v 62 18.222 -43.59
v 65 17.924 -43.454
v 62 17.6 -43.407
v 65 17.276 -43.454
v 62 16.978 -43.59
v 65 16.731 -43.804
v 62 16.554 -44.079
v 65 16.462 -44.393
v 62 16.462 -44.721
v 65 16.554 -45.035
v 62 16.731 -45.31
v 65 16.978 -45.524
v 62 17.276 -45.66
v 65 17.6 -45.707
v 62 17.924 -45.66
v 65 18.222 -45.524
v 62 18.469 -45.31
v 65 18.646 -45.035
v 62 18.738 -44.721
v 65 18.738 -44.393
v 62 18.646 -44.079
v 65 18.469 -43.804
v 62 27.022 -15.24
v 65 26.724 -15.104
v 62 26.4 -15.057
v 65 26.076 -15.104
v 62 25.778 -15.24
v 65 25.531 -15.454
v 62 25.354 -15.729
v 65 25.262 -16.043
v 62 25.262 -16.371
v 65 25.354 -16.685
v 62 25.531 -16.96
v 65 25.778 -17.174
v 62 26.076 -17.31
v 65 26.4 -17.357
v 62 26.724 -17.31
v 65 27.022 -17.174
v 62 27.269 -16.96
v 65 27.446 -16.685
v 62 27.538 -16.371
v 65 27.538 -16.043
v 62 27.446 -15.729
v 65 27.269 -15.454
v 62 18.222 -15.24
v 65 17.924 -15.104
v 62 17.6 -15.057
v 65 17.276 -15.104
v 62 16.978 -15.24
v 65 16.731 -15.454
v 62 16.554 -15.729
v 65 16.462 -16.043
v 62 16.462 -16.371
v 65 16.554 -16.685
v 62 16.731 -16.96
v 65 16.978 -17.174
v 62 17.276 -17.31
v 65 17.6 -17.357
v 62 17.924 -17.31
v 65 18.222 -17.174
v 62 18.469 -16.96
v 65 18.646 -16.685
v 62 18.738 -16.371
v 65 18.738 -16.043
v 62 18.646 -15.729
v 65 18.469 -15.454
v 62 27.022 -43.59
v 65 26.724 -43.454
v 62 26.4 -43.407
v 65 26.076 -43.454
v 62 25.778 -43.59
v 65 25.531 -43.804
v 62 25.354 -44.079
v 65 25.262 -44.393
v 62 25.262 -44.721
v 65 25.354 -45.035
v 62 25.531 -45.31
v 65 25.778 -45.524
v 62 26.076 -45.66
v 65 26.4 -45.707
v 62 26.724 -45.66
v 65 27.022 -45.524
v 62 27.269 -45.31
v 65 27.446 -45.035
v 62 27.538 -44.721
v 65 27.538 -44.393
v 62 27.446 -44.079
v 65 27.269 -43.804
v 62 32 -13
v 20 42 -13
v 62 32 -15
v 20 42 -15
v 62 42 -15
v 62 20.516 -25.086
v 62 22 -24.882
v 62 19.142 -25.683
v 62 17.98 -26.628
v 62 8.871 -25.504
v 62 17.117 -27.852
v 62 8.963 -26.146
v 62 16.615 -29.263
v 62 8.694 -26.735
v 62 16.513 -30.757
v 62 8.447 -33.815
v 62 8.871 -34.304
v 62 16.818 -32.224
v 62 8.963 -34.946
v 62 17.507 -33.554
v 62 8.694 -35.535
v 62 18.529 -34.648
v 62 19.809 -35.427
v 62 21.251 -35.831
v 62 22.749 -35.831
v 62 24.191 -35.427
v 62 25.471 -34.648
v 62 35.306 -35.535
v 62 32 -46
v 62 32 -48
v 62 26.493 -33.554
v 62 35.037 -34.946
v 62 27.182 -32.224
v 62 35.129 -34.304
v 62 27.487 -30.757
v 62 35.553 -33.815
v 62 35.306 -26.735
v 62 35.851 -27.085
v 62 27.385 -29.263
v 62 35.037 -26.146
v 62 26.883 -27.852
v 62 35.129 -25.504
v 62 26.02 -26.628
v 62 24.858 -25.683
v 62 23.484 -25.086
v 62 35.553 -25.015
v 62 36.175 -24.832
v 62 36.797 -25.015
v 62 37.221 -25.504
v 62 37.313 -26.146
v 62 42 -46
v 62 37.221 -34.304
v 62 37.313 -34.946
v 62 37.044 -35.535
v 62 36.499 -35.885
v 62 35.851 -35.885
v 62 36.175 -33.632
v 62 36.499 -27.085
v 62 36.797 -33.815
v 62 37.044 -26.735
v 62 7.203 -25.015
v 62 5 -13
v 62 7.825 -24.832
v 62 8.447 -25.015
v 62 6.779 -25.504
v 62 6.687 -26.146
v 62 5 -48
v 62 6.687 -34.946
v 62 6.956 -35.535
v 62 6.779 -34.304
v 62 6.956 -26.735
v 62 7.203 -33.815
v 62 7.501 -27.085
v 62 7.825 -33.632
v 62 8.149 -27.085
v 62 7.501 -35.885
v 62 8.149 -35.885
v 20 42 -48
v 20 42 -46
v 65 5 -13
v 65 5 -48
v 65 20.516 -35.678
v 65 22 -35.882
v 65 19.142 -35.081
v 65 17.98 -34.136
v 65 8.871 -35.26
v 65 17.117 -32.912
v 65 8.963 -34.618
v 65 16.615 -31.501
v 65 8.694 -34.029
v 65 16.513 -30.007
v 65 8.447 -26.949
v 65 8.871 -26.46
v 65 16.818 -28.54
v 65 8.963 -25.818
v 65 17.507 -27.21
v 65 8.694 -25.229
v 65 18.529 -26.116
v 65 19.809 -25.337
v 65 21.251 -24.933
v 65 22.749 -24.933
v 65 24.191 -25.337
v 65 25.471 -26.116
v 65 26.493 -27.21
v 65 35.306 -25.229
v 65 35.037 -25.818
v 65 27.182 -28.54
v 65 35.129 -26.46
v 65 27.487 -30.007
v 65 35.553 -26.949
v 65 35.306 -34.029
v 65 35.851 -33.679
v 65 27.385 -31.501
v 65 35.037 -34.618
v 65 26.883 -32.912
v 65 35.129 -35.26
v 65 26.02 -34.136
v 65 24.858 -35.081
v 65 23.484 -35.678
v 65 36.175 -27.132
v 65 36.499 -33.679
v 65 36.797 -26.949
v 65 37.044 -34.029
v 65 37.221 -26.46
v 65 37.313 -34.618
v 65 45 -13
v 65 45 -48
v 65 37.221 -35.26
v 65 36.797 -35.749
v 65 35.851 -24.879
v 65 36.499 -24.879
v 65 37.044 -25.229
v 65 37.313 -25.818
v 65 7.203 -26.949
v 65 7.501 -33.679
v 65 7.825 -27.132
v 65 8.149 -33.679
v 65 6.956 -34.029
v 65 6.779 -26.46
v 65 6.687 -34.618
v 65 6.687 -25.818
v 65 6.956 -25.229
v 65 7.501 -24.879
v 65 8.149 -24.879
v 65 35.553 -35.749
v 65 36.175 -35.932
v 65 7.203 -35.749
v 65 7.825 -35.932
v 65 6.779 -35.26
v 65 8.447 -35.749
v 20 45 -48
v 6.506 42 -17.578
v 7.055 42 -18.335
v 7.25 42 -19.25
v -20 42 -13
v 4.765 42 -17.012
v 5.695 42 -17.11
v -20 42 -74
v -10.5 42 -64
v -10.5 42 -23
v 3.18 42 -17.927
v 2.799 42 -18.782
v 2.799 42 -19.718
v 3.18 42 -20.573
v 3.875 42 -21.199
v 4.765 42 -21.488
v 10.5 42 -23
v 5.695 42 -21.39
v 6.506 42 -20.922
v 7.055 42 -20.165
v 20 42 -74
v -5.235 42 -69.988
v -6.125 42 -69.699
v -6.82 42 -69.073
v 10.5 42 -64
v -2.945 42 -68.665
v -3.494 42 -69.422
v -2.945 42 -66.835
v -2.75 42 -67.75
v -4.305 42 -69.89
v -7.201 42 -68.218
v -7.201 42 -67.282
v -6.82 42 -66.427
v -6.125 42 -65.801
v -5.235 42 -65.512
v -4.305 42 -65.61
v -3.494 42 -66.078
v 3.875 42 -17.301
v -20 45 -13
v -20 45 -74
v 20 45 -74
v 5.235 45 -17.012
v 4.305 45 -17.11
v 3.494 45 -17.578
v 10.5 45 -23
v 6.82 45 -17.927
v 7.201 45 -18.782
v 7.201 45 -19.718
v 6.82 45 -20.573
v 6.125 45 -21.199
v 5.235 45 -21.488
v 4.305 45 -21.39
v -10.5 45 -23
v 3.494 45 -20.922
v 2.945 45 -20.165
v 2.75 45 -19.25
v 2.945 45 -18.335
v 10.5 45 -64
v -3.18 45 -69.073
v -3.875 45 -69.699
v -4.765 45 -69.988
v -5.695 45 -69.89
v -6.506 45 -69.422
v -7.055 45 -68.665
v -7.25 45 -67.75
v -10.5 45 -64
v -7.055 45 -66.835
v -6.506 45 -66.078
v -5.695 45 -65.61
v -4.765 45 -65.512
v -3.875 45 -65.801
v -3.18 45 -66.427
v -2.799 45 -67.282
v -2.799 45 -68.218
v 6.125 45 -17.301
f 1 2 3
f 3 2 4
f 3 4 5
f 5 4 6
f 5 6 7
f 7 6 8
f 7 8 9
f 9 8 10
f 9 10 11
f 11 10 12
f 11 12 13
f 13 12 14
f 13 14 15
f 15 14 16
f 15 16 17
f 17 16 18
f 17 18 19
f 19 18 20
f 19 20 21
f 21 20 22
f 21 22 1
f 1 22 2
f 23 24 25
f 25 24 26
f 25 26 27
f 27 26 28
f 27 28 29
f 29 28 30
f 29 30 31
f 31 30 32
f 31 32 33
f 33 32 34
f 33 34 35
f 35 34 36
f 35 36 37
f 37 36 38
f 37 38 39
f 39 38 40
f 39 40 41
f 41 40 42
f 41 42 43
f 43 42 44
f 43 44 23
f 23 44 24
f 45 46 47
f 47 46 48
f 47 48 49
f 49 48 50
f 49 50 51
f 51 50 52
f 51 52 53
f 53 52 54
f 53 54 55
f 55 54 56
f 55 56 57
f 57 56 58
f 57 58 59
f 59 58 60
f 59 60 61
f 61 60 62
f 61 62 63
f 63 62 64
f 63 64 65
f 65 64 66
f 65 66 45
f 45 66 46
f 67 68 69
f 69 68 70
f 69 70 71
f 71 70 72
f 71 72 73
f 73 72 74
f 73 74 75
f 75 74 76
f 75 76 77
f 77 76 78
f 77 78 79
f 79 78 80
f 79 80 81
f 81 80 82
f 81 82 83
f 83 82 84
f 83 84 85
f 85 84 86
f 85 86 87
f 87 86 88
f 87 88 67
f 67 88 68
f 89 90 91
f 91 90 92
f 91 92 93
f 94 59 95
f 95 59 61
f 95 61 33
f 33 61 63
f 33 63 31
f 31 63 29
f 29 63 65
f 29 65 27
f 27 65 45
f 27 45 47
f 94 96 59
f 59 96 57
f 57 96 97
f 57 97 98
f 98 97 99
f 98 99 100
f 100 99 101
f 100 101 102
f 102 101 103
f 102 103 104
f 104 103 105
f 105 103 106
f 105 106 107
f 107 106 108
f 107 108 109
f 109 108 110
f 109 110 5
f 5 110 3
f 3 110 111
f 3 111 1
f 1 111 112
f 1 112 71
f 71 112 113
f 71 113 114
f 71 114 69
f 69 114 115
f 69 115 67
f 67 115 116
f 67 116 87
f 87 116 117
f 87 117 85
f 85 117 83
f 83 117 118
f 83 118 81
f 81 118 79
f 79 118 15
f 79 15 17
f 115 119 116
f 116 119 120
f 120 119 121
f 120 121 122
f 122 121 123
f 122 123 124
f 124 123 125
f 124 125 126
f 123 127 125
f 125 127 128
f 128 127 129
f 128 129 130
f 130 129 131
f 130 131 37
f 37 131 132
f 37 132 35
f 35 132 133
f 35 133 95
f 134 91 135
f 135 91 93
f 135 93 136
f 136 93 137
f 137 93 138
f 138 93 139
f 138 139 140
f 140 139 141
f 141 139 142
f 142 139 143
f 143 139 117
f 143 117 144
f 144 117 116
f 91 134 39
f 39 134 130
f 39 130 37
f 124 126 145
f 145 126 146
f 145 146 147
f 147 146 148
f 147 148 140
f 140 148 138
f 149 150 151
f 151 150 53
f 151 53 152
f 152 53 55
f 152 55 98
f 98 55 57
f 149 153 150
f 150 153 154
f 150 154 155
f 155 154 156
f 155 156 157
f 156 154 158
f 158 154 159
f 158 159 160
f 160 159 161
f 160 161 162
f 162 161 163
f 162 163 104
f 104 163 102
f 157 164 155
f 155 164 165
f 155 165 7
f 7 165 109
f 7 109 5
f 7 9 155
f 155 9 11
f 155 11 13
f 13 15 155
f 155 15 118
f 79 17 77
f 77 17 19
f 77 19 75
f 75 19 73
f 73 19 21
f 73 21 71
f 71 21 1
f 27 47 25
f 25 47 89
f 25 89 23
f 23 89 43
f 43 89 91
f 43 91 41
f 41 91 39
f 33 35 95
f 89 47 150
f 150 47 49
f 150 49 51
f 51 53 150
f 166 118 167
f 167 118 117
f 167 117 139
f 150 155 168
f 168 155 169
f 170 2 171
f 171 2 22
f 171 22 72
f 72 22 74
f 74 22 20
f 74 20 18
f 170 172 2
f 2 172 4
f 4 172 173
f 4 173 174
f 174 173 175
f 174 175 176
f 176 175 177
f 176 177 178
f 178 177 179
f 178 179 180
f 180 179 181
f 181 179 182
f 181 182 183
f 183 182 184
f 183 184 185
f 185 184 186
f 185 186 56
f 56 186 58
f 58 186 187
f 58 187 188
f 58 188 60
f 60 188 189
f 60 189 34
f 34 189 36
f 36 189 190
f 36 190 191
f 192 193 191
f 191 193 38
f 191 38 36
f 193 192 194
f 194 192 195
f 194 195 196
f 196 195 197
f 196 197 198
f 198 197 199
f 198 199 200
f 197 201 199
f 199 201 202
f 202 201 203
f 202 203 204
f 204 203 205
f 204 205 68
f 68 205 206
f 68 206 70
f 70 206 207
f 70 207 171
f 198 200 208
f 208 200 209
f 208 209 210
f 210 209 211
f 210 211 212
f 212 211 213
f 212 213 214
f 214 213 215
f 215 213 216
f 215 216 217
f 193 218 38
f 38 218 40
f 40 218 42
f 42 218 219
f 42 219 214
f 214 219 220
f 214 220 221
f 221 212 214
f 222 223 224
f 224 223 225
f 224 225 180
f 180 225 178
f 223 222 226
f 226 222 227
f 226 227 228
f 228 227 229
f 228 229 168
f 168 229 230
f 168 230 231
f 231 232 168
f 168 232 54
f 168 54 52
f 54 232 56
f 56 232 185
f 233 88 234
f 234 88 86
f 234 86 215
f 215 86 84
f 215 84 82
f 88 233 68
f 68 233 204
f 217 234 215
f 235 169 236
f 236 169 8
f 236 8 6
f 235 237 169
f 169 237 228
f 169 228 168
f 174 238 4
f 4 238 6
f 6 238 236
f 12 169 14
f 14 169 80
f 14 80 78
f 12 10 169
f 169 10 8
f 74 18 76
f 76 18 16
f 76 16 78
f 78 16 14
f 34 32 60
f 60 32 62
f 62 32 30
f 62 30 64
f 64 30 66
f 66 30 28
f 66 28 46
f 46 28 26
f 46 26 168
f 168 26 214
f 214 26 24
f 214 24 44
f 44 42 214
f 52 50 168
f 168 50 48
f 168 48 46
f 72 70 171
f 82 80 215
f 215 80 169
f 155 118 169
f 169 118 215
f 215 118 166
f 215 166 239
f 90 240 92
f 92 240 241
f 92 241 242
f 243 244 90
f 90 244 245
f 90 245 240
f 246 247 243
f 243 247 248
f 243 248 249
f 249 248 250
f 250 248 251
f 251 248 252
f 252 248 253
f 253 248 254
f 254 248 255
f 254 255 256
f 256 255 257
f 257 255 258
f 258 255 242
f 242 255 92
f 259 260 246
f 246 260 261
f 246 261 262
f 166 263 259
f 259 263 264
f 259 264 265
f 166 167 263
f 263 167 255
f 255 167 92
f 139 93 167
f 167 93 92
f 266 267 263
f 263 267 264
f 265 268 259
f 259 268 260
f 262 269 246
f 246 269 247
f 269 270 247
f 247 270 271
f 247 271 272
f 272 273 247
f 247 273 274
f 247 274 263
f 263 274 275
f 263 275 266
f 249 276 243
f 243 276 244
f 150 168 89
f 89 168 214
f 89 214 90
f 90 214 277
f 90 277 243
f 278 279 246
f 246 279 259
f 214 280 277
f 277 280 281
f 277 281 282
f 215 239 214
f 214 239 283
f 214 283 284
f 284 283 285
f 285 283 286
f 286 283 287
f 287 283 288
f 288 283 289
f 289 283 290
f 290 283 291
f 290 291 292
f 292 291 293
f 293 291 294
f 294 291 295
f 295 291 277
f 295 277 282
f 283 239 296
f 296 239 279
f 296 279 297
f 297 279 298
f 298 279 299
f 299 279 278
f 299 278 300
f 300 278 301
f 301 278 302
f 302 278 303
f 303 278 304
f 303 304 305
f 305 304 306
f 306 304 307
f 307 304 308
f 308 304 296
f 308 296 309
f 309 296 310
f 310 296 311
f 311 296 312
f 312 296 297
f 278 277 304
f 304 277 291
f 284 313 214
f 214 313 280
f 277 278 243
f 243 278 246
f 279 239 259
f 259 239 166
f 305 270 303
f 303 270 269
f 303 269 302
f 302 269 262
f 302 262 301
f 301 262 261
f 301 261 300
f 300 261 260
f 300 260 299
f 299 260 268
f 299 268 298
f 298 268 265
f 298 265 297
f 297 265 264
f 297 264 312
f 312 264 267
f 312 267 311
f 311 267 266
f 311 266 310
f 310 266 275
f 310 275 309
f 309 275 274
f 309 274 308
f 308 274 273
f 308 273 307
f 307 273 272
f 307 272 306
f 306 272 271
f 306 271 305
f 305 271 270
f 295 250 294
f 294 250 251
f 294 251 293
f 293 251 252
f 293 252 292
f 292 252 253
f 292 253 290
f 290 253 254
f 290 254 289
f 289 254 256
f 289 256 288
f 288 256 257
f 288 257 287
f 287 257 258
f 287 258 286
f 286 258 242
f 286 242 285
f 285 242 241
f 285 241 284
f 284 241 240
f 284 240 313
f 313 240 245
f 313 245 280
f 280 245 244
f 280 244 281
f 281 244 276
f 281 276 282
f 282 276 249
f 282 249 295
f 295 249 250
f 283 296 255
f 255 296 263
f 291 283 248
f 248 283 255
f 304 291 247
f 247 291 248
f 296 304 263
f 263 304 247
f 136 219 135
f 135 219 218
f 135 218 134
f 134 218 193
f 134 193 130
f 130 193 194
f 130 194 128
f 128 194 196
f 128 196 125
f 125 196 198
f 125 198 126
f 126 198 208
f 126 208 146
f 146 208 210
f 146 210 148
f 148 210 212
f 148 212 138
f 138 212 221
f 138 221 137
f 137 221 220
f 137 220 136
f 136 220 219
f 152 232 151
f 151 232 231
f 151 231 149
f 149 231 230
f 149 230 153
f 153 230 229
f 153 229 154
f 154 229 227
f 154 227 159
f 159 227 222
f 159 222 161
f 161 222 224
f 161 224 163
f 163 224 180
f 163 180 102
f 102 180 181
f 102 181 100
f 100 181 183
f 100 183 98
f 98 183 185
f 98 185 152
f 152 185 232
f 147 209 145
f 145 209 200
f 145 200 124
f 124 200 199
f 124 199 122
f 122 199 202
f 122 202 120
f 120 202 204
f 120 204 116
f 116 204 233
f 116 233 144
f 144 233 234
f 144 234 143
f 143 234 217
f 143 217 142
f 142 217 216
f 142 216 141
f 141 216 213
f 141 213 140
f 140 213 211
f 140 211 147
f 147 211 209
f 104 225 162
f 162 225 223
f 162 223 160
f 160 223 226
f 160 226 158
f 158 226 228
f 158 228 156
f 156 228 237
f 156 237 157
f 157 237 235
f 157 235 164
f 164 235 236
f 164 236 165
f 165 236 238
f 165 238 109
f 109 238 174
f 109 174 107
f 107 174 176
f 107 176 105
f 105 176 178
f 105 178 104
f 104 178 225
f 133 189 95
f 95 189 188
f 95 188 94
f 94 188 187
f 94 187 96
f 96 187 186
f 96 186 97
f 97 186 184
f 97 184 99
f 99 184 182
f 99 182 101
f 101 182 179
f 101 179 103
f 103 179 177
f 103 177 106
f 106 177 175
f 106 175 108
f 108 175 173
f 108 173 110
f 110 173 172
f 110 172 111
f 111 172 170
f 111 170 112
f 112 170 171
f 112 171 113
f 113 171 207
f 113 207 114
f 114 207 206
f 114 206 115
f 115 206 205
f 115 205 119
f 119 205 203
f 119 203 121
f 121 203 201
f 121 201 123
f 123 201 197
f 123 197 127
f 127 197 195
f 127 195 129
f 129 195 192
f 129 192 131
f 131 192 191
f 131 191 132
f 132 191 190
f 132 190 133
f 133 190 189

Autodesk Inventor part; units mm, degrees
ref_plane "YZ Plane" through (0, 0, 0) normal (1, 0, 0) x (0, 1, 0)
ref_plane "XZ Plane" through (0, 0, 0) normal (0, 1, 0) x (-1, 0, 0)
sketch "Sketch1" plane through (0, 0, 0) normal (0, 0, 1) x (1, 0, 0)
  line L0 (-31, -31) -> (31, -31)
  line L1 (31, -31) -> (31, 31)
  line L2 (31, 31) -> (-31, 31)
  line L3 (-31, 31) -> (-31, -31)
  line L4 (-31, -31) -> (31, 31) construction
  line L5 (31, -31) -> (-31, 31) construction
  line L6 (-33, 33) -> (33, 33)
  line L7 (33, 33) -> (33, -33)
  line L8 (33, -33) -> (-33, -33)
  line L9 (-33, -33) -> (-33, 33)
  point P0 (0, 0)
  dimension "d0" = 62
  dimension "d1" = 62
  dimension "d2" = 2
extrude "Extrusion1" add sketch "Sketch1" along normal blind 2 contours L3 L2 L1 L0 | L6 L7 L8 L9
extrude "Extrusion2" add sketch "Sketch1" against normal blind 12
sketch "Sketch2" plane through (-33, 33, 2) normal (0, 1, 0) x (1, 0, 0)
  line L0 (13, 3) -> (53, 3)
  line L1 (53, 3) -> (53, 0)
  line L2 (53, 0) -> (13, 0)
  line L3 (13, 0) -> (13, 3)
  line L4 (0, 14) -> (0, 0) projected
  line L5 (0, 14) -> (66, 14) projected
  point P0 (33, 2)
  dimension "d7" = 40
  dimension "d8" = 3
  dimension "d9" = 13
  dimension "d10" = 11
extrude "Extrusion3" add sketch "Sketch2" along normal blind 12
sketch "Sketch3" plane through (20, 33, -1) normal (0, 0, -1) x (-1, 0, 0)
  line L0 (40, 12) -> (0, 12) projected
  line L1 (40, 0) -> (40, 12) projected
  line L2 (0, 12) -> (40, 12)
  line L3 (40, 12) -> (40, 9)
  line L4 (40, 9) -> (0, 9)
  line L5 (0, 9) -> (0, 12)
  point P0 (20, -33)
  dimension "d13" = 3
extrude "Extrusion4" add sketch "Sketch3" along normal blind 80
sketch "Sketch4" plane through (-20, 42, -1) normal (0, -1, 0) x (1, 0, 0)
  line L0 (30.5, -63) -> (9.5, -63)
  line L1 (9.5, -63) -> (9.5, -22)
  line L2 (9.5, -22) -> (30.5, -22)
  line L3 (30.5, -22) -> (30.5, -63)
  line L4 (40, 3) -> (40, -80) projected
  line L5 (0, 3) -> (40, 3) projected
  point P0 (20, 1)
  dimension "d16" = 21
  dimension "d17" = 41
  dimension "d18" = 9.5
  dimension "d19" = 25
extrude "Extrusion5" cut sketch "Sketch4" against normal blind 80
sketch "Sketch5" plane through (-20, 42, -1) normal (0, -1, 0) x (1, 0, 0)
  line L0 (30.5, -63) -> (9.5, -63) projected
  line L1 (30.5, -63) -> (9.5, -63)
  line L2 (9.5, -63) -> (9.5, -70)
  line L3 (9.5, -70) -> (30.5, -70)
  line L4 (30.5, -70) -> (30.5, -63)
  circle A0 centre (15, -66.75) radius 2.25
  line L5 (30.5, -22) -> (30.5, -63) projected
  line L6 (30.5, -22) -> (9.5, -22)
  line L7 (9.5, -22) -> (9.5, -15)
  line L8 (9.5, -15) -> (30.5, -15)
  line L9 (30.5, -15) -> (30.5, -22)
  circle A1 centre (25, -18.25) radius 2.25
  point P0 (20, 1)
  point P1 (15.4717, -69.81)
  point P2 (14.5283, -69.81)
  point P3 (24.5283, -15.19)
  point P4 (25.4717, -15.19)
  dimension "d22" = 7
  dimension "d23" = 4.5
  dimension "d24" = 3.75
  dimension "d25" = 5.5
  dimension "d26" = 7
  dimension "d27" = 4.5
  dimension "d28" = 5.5
  dimension "d29" = 3.75
extrude "Extrusion6" cut sketch "Sketch5" against normal blind 80 contours A0 | A1
sketch "Sketch6" plane through (-33, -33, 2) normal (0, -1, 0) x (1, 0, 0)
  line L0 (0, 0) -> (66, 0) projected
  line L1 (66, -14) -> (0, -14) projected
  line L2 (0, 0) -> (66, 0)
  line L3 (66, 0) -> (66, -14)
  line L4 (66, -14) -> (0, -14)
  line L5 (0, -14) -> (0, 0)
  point P0 (33, -2)
extrude "Extrusion7" cut sketch "Sketch6" against normal up to surface (75 mm away)
sketch "Sketch7" plane through (-20, 42, -81) normal (0, -1, 0) x (1, 0, 0)
  line L0 (40, 83) -> (40, 0) projected
  line L1 (40, 0) -> (85, 0)
  line L2 (85, 0) -> (85, 83)
  line L3 (85, 83) -> (40, 83)
  line L4 (40, 83) -> (40, 0)
  line L5 (85, 33) -> (40, 33)
  point P0 (20, 81)
  point P1 (40, 33)
  dimension "d34" = 45
  dimension "d35" = 83
  dimension "d36" = 50
extrude "Extrusion8" add sketch "Sketch7" against normal up to surface (3 mm away) contours L3 L2 L5 L0
sketch "Sketch8" plane through (-20, 42, -81) normal (0, -1, 0) x (1, 0, 0)
  line L0 (0, 83) -> (85, 83)
  line L1 (85, 83) -> (85, 0)
  line L2 (85, 0) -> (0, 0)
  line L3 (0, 0) -> (0, 83)
  line L4 (85, 7) -> (0, 7)
  line L5 (85, 33) -> (85, 83) projected
  line L6 (-12.2623, 85.093) -> (0, 83)
  line L7 (0, 83) -> (-11.5686, 87.0435)
  line L8 (-11.5686, 87.0435) -> (85, 70.5603)
  line L9 (0, 83) -> (100, 83)
  line L10 (100, 83) -> (100, 68)
  line L11 (100, 68) -> (0, 68)
  line L12 (0, 68) -> (0, 83)
  point P0 (20, 81)
  point P1 (0, 73.8499)
  point P2 (27.25, 61.75)
  point P3 (27.25, 61.75)
  point P4 (25.55, 64.81)
  point P5 (0, 68)
  point P6 (85, 68)
  dimension "d40" = 83
  dimension "d41" = 7
  dimension "d43" = 15
extrude "Extrusion9" cut sketch "Sketch8" against normal blind 10 contours L0 L8 L1 L11 L3 | L0 L1 L8 | L4 L1 L2 L3
sketch "Sketch9" plane through (20, 42, -48) normal (0, -1, 0) x (1, 0, 0)
  line L0 (45, 0) -> (45, 35) projected
  line L1 (0, 0) -> (45, 0) projected
  line L2 (45, 35) -> (42, 35)
  line L3 (42, 35) -> (42, 0)
  line L4 (42, 0) -> (45, 0)
  line L5 (45, 0) -> (45, 35)
  point P0 (-20, 48)
  dimension "d46" = 3
extrude "Extrusion10" add sketch "Sketch9" along normal blind 100
sketch "Sketch10" plane through (65, 45, -13) normal (1, 0, 0) x (0, 0, -1)
  circle A0 centre (18, -56.25) radius 2.125
  circle A1 centre (18, -93) radius 2.125
  circle A2 centre (18, -74.625) radius 6.45
  line L0 (20.093, -55.8824) -> (22.589, -70.0925)
  line L1 (15.9065, -55.8857) -> (13.439, -70.0643)
  line L2 (20.0935, -93.3643) -> (22.561, -79.1857)
  line L3 (15.8877, -93.2317) -> (13.411, -79.1575)
  line L4 (18, -56.25) -> (18, -74.625)
  line L5 (18, -74.625) -> (18, -93)
  line L6 (35, 0) -> (35, -103) projected
  line L7 (35, -103) -> (0, -103) projected
  point P0 (-13, -45)
  dimension "d49" = 4.25
  dimension "d50" = 4.25
  dimension "d51" = 12.9
  dimension "d52" = 9.15
  dimension "d53" = 9.15
  dimension "d54" = 41
  dimension "d57" = 17
  dimension "d58" = 10
extrude "Extrusion11" cut sketch "Sketch10" against normal blind 2.5
sketch "Sketch11" plane through (65, 45, -13) normal (1, 0, 0) x (0, 0, -1)
  line L0 (35, -3) -> (35, -103) projected
  line L1 (0, 0) -> (0, -103) projected
  line L2 (35, -103) -> (0, -103)
  line L3 (0, -103) -> (0, 0)
  line L4 (0, 0) -> (35, 0)
  line L5 (35, 0) -> (35, -103)
  line L6 (35, -40) -> (0, -40)
  point P0 (-13, -45)
  dimension "d59" = 40
extrude "Extrusion12" cut sketch "Sketch11" against normal blind 10 contours L0 L2 L1 L6
sketch "Sketch12" plane through (65, 45, -48) normal (0, 0, -1) x (-1, 0, 0)
  line L0 (45, -3) -> (3, -3) projected
  line L1 (3, -3) -> (45, -3)
  line L2 (45, -3) -> (45, -13)
  line L3 (45, -13) -> (3, -13)
  line L4 (3, -13) -> (3, -3)
  line L5 (3, -13) -> (45, -3)
  point P0 (65, -45)
  dimension "d62" = 42
  dimension "d63" = 10
extrude "Extrusion13" add sketch "Sketch12" against normal blind 2 contours L5 L4 L0
ref_plane "Work Plane1" through (65, 45, -30.5) normal (0, 0, -1) x (-1, 0, 0)
mirror "Mirror1" about plane through (65, 45, -30.5) normal (0, 0, -1) of "Extrusion13"
sketch "Sketch13" plane through (65, 45, -13) normal (1, 0, 0) x (0, 0, -1)
  circle A0 centre (17.382, -23) radius 5.5
  circle A1 centre (17.382, -23) radius 6.45
  circle A2 centre (-0.993, -23) radius 2.125
  circle A3 centre (35.757, -23) radius 2.125
  line L0 (-1.339, -20.9034) -> (12.6745, -18.5907)
  line L1 (-1.3774, -25.0899) -> (13.0021, -27.7348)
  line L2 (36.1038, -20.9035) -> (22.084, -18.5848)
  line L3 (36.1414, -25.0899) -> (21.762, -27.7348)
  line L4 (17.382, -23) -> (35.757, -23)
  line L5 (17.382, -23) -> (-0.993, -23)
  circle A4 centre (3.207, -27.4) radius 1.15
  circle A5 centre (31.557, -18.6) radius 1.15
  line L6 (0, -40) -> (35, -40) projected
  line L7 (-0.993, -23) -> (35.757, -23)
  circle A6 centre (31.557, -27.4) radius 1.15
  circle A7 centre (3.207, -18.6) radius 1.15
  circle A8 centre (12.982, -37.175) radius 1.15
  circle A9 centre (21.782, -37.175) radius 1.15
  circle A10 centre (21.782, -8.825) radius 1.15
  circle A11 centre (12.982, -8.825) radius 1.15
  circle A12 centre (31.557, -27.4) radius 1.15
  circle A13 centre (31.557, -18.6) radius 1.15
  circle A14 centre (3.207, -18.6) radius 1.15
  circle A15 centre (3.207, -27.4) radius 1.15
  circle A16 centre (21.782, -8.825) radius 1.15
  circle A17 centre (12.982, -8.825) radius 1.15
  circle A18 centre (12.982, -37.175) radius 1.15
  circle A19 centre (21.782, -37.175) radius 1.15
  point P0 (-13, -45)
  point P1 (17.5, -40)
  dimension "d66" = 12.9
  dimension "d67" = 4.25
  dimension "d68" = 4.25
  dimension "d69" = 9.15
  dimension "d70" = 9.15
  dimension "d71" = 41
  dimension "d72" = 18.375
  dimension "d73" = 2.3
  dimension "d74" = 4.4
  dimension "d75" = 4.2
  dimension "d76" = 2.3
  dimension "d77" = 4.4
  dimension "d78" = 4.2
  dimension "d79" = 17
  dimension "d86" = 360
extrude "Extrusion14" cut sketch "Sketch13" against normal blind 10 contours A4 | A5
extrude "Extrusion15" cut sketch "Sketch13" against normal blind 10 contours A6 | A7
extrude "Extrusion16" cut sketch "Sketch13" against normal blind 10 contours A8 | A9 | A10 | A11
extrude "Extrusion17" cut sketch "Sketch13" against normal blind 10 contours L4 L5 A0 | A0 L5 L4
properties part number "pan_base_holder_second"
